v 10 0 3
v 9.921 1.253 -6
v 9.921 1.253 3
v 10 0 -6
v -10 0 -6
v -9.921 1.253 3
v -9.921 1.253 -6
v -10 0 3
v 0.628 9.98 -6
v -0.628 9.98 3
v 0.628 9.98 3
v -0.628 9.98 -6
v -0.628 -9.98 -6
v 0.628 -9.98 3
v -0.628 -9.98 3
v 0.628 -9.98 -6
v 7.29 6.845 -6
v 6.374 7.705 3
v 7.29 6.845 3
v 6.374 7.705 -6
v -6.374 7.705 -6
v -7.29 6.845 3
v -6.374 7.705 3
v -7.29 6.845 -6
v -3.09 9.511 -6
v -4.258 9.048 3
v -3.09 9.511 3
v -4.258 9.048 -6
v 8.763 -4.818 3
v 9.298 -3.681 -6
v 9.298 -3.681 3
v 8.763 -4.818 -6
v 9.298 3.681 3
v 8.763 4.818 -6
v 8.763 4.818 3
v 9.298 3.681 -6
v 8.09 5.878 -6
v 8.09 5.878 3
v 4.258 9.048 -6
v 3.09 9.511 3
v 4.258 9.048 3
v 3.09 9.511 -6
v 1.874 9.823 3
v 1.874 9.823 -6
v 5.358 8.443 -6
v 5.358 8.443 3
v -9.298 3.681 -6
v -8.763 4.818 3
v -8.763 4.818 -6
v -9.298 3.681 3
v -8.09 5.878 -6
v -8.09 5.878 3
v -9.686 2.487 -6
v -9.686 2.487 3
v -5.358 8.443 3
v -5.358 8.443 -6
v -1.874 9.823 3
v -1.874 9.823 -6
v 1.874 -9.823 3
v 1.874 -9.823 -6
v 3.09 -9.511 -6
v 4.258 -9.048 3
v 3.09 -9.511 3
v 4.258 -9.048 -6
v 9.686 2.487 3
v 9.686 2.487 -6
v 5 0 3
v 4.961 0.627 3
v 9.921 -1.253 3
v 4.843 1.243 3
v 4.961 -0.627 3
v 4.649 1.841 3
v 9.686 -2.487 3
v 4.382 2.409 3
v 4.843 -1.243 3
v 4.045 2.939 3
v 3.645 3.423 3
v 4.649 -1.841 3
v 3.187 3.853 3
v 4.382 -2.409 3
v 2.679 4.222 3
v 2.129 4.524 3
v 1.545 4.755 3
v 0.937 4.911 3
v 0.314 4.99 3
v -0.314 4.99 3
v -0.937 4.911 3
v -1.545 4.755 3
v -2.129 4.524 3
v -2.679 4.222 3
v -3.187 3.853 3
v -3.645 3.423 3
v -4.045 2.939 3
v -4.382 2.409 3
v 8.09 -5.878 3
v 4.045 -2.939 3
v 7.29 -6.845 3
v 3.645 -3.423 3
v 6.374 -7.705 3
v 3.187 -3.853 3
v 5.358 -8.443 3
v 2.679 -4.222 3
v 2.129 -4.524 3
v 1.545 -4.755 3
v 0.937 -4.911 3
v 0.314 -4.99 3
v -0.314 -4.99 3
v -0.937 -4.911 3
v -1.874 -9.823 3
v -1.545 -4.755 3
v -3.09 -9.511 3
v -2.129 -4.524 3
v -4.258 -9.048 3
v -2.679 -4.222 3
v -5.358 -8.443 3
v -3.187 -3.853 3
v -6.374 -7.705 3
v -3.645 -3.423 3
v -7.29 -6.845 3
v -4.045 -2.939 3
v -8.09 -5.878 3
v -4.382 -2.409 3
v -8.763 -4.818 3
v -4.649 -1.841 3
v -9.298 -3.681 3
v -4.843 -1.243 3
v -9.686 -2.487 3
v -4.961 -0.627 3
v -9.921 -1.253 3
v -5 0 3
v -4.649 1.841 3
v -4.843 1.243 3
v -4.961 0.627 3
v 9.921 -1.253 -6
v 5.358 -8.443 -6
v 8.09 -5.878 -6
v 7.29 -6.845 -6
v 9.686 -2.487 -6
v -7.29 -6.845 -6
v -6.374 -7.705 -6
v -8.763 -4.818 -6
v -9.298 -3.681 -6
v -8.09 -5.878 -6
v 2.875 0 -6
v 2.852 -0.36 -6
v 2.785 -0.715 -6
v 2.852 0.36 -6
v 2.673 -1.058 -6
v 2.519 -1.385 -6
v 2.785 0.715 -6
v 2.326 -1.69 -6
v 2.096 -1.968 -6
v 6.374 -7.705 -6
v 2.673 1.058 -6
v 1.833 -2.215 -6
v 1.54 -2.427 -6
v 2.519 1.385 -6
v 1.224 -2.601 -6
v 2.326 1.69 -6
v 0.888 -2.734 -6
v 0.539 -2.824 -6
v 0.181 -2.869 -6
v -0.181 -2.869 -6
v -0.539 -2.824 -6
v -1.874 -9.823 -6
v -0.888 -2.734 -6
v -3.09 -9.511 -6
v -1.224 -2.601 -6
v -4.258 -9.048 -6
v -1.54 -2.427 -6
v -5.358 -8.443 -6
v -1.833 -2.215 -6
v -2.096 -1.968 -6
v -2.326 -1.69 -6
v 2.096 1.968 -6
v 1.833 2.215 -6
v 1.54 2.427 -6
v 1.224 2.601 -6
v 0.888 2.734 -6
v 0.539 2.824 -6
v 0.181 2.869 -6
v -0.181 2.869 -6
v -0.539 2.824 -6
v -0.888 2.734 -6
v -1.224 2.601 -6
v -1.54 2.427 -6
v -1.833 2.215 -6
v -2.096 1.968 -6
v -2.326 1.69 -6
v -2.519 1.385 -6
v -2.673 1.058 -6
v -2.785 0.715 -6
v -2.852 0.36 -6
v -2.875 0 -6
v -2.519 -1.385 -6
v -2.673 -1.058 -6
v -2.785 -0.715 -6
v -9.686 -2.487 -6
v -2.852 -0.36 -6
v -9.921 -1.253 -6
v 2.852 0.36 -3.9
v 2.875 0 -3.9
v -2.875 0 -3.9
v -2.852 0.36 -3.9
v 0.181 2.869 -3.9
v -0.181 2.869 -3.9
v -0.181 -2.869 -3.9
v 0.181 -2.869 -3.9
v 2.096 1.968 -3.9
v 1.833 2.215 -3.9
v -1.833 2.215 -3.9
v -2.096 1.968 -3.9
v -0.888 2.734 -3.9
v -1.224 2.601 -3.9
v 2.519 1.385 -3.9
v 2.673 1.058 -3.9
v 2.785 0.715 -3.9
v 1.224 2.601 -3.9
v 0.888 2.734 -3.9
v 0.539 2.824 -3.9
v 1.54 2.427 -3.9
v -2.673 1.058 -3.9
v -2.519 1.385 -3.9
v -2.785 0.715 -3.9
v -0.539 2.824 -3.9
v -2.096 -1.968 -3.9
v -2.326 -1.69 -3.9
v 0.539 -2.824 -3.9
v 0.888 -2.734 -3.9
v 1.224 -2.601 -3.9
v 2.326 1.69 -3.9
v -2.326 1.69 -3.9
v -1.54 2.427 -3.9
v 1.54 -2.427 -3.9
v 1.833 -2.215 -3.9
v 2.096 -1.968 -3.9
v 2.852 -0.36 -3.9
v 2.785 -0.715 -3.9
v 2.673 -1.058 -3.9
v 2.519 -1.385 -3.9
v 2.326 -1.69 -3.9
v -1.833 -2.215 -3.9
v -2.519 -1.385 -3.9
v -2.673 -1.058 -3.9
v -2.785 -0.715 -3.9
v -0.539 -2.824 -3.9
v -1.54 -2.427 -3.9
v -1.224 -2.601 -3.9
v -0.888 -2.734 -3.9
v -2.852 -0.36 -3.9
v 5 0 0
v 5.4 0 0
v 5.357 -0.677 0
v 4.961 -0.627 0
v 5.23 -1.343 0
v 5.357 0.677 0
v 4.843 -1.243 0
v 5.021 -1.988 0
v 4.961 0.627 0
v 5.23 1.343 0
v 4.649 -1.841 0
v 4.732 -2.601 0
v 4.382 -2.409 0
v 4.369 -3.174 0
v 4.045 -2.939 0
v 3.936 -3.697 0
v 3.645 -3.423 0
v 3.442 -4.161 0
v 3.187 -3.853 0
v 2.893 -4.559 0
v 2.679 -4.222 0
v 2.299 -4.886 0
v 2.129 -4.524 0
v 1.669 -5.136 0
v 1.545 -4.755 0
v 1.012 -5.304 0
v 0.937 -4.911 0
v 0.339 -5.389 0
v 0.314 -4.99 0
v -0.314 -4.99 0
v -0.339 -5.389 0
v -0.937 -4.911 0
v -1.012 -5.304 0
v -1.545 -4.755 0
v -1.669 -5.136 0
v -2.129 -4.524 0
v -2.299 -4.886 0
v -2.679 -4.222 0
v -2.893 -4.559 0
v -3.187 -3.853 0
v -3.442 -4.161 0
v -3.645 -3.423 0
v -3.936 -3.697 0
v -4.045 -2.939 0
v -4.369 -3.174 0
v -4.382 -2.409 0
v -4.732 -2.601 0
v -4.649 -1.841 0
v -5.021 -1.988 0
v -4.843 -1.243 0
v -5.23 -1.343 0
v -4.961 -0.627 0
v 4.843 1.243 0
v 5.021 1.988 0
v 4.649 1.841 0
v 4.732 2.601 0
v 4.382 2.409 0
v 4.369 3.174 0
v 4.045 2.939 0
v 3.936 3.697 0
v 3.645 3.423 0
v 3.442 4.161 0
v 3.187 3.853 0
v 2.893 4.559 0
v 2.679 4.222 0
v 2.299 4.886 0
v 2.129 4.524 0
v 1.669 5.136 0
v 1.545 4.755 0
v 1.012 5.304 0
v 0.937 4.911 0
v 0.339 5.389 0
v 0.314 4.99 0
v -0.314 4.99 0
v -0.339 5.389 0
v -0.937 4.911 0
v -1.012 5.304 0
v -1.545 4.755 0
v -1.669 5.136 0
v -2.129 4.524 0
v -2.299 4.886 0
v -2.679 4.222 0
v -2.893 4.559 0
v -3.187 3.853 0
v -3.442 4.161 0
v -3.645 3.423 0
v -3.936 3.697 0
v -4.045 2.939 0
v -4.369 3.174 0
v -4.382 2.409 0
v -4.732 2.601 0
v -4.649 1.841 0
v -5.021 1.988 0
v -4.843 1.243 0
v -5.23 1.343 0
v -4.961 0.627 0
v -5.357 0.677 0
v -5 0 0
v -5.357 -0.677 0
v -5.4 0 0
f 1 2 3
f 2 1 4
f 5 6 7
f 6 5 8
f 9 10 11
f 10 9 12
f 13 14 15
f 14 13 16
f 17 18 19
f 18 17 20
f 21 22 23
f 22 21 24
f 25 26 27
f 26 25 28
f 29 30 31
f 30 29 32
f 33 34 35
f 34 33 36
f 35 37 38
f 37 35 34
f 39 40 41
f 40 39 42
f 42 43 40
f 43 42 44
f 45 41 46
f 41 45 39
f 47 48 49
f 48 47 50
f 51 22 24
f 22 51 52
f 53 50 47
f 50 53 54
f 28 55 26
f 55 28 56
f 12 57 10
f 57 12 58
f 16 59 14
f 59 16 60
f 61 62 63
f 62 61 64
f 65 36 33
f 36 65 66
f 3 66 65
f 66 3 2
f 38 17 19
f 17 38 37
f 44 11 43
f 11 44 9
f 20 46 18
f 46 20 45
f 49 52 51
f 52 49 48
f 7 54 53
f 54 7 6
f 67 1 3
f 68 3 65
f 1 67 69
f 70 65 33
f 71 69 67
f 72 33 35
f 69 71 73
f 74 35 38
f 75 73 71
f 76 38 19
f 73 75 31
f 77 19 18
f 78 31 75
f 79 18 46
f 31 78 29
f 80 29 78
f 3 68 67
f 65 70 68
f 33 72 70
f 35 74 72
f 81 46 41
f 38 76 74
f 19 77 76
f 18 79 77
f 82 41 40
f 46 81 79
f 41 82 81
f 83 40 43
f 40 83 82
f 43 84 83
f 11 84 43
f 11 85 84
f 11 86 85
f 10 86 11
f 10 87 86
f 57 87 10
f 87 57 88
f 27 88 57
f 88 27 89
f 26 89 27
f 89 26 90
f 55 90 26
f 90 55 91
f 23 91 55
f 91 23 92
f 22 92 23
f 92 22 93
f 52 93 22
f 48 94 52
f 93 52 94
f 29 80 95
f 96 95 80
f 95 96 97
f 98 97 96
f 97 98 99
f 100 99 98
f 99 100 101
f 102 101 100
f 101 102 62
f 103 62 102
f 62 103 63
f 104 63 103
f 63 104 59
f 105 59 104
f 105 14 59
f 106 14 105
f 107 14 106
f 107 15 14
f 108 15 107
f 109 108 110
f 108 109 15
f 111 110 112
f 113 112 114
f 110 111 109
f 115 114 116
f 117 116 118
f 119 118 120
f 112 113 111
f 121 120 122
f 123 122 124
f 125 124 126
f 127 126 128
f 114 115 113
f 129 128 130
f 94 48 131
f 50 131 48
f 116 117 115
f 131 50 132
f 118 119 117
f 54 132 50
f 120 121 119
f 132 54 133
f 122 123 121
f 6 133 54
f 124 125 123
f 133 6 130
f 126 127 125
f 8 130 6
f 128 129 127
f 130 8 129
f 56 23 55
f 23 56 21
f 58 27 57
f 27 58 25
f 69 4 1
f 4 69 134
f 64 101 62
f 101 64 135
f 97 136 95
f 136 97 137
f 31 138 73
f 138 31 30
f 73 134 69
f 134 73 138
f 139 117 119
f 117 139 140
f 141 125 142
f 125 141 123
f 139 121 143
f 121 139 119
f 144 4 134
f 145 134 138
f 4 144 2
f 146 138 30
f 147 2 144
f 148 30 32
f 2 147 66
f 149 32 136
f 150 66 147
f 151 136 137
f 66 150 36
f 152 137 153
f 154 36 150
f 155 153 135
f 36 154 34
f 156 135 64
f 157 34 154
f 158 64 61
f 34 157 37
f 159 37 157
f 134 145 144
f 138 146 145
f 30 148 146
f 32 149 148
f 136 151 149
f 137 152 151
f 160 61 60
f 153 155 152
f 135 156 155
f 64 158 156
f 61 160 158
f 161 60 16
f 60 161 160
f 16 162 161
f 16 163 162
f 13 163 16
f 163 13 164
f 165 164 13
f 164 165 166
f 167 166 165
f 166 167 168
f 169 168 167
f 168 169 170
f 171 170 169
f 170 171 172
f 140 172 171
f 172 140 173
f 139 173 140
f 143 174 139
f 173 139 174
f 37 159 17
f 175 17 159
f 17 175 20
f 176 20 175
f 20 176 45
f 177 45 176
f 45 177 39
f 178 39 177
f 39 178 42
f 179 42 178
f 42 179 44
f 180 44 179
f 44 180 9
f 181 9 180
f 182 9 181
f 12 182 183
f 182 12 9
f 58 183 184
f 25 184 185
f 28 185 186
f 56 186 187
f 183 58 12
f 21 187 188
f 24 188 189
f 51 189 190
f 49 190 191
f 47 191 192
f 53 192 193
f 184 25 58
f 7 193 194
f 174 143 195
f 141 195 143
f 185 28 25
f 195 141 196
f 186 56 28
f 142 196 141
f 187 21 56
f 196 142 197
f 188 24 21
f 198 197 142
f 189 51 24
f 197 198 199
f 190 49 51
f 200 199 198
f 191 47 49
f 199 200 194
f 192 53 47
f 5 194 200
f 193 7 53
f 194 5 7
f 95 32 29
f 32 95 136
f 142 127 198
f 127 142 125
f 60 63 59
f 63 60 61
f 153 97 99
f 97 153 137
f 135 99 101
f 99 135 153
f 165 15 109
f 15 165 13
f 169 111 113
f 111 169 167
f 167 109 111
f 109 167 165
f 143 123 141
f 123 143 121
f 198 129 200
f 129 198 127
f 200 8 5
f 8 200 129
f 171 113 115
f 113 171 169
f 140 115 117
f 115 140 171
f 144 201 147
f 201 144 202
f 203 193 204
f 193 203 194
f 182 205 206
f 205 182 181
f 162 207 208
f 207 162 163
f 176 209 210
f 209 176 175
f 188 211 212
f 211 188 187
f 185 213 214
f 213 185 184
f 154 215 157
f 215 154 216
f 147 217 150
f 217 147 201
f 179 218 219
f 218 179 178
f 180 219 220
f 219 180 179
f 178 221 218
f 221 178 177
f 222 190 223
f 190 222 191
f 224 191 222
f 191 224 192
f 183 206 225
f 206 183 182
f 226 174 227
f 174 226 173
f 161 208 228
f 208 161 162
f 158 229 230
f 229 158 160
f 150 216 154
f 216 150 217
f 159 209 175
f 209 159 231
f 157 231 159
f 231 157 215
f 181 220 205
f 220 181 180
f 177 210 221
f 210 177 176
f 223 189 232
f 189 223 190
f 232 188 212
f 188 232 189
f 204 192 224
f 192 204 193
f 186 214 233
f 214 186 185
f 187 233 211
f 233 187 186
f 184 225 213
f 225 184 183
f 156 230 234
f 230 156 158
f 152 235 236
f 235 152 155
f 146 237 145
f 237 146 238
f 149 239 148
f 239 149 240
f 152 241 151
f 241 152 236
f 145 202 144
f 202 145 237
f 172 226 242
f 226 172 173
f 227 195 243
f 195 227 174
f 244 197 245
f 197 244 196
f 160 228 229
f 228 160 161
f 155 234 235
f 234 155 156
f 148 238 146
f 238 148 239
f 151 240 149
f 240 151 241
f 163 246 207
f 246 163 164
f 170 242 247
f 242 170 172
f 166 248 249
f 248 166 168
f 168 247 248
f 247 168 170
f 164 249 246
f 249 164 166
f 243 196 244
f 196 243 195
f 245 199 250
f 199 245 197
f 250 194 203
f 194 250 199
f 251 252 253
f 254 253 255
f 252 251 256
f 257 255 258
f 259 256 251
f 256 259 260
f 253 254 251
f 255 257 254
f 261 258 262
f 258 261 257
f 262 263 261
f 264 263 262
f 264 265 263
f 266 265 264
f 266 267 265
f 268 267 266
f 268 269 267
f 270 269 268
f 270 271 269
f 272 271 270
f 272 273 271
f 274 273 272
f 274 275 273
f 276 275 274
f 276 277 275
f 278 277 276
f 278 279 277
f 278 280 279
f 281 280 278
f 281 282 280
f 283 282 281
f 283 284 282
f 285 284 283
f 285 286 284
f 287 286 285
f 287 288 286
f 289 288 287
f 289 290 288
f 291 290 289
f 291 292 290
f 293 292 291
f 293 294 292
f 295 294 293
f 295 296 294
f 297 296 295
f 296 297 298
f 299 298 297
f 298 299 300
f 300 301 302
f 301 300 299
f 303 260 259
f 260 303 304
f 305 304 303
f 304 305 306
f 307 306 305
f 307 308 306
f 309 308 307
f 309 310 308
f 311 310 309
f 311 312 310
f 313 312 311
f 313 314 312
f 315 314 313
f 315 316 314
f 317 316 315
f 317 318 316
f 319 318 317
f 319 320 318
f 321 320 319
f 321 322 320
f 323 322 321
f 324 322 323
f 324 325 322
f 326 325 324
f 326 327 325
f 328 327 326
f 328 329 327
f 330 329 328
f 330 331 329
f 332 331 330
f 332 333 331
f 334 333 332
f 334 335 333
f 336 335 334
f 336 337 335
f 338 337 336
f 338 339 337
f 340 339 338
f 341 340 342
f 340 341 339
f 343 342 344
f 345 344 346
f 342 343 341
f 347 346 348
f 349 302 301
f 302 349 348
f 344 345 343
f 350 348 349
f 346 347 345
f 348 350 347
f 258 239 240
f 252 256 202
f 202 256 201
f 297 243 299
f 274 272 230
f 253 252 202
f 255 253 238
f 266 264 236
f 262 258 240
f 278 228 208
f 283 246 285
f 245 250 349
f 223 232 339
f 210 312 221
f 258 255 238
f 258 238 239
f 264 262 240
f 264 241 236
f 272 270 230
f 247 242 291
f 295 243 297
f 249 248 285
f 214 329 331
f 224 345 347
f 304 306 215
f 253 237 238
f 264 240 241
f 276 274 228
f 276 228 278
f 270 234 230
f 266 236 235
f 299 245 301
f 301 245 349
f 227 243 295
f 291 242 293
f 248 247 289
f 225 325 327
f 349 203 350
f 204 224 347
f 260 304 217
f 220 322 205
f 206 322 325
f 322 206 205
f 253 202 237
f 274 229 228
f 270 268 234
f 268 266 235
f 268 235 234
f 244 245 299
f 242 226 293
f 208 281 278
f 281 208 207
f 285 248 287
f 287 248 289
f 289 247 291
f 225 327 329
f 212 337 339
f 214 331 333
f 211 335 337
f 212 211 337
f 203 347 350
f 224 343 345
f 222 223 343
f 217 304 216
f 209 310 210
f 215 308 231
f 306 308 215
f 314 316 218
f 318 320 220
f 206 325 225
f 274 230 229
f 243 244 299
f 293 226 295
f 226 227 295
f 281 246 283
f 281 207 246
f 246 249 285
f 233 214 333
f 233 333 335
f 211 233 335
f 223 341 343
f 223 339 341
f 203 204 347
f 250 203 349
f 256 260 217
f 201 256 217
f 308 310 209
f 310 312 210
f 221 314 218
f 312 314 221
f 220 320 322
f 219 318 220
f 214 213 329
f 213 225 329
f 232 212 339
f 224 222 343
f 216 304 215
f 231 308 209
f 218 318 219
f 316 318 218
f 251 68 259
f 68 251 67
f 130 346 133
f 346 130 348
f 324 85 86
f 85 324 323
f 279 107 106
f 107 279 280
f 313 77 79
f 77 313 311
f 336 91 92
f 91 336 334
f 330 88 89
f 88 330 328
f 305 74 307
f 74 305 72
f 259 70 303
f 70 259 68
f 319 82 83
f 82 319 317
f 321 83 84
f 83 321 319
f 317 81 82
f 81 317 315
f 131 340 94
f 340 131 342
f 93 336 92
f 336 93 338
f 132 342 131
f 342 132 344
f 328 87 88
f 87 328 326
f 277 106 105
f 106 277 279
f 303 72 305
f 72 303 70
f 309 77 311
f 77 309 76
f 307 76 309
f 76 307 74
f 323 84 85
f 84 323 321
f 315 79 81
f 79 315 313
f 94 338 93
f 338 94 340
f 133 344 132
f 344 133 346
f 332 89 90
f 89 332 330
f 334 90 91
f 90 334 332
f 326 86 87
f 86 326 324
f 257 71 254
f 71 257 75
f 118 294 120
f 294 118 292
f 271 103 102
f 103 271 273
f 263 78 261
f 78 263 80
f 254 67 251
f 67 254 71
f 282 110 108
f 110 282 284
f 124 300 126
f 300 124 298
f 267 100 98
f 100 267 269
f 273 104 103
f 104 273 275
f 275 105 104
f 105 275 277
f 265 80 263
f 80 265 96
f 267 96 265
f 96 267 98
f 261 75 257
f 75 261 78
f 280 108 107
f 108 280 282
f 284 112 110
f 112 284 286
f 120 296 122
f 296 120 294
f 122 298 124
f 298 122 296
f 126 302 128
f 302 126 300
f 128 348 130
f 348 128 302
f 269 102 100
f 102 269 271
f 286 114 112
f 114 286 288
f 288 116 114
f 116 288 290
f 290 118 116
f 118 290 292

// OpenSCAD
$fn = 50;

difference() {
	union() {
		translate(v = [0, 0, -6.0]) {
			cylinder(h = 9, r = 10.0);
		}
		#translate(v = [0, 0, -9.0]) {
			cylinder(h = 9, r = 2.875);
		}
	}
	union() {
		translate(v = [0, 0, 0]) {
			rotate(a = [0, 0, 0]) {
				difference() {
					union() {
						translate(v = [0, 0, -9.0]) {
							cylinder(h = 9, r = 2.6);
						}
						translate(v = [0, 0, -3.9]) {
							cylinder(h = 3.9, r1 = 2.875, r2 = 5.4);
						}
						translate(v = [0, 0, -9.0]) {
							cylinder(h = 9, r = 2.875);
						}
						translate(v = [0, 0, -9.0]) {
							cylinder(h = 9, r = 2.6);
						}
					}
					union();
				}
			}
		}
		#cylinder(h = 3, r = 5.0);
	}
}
